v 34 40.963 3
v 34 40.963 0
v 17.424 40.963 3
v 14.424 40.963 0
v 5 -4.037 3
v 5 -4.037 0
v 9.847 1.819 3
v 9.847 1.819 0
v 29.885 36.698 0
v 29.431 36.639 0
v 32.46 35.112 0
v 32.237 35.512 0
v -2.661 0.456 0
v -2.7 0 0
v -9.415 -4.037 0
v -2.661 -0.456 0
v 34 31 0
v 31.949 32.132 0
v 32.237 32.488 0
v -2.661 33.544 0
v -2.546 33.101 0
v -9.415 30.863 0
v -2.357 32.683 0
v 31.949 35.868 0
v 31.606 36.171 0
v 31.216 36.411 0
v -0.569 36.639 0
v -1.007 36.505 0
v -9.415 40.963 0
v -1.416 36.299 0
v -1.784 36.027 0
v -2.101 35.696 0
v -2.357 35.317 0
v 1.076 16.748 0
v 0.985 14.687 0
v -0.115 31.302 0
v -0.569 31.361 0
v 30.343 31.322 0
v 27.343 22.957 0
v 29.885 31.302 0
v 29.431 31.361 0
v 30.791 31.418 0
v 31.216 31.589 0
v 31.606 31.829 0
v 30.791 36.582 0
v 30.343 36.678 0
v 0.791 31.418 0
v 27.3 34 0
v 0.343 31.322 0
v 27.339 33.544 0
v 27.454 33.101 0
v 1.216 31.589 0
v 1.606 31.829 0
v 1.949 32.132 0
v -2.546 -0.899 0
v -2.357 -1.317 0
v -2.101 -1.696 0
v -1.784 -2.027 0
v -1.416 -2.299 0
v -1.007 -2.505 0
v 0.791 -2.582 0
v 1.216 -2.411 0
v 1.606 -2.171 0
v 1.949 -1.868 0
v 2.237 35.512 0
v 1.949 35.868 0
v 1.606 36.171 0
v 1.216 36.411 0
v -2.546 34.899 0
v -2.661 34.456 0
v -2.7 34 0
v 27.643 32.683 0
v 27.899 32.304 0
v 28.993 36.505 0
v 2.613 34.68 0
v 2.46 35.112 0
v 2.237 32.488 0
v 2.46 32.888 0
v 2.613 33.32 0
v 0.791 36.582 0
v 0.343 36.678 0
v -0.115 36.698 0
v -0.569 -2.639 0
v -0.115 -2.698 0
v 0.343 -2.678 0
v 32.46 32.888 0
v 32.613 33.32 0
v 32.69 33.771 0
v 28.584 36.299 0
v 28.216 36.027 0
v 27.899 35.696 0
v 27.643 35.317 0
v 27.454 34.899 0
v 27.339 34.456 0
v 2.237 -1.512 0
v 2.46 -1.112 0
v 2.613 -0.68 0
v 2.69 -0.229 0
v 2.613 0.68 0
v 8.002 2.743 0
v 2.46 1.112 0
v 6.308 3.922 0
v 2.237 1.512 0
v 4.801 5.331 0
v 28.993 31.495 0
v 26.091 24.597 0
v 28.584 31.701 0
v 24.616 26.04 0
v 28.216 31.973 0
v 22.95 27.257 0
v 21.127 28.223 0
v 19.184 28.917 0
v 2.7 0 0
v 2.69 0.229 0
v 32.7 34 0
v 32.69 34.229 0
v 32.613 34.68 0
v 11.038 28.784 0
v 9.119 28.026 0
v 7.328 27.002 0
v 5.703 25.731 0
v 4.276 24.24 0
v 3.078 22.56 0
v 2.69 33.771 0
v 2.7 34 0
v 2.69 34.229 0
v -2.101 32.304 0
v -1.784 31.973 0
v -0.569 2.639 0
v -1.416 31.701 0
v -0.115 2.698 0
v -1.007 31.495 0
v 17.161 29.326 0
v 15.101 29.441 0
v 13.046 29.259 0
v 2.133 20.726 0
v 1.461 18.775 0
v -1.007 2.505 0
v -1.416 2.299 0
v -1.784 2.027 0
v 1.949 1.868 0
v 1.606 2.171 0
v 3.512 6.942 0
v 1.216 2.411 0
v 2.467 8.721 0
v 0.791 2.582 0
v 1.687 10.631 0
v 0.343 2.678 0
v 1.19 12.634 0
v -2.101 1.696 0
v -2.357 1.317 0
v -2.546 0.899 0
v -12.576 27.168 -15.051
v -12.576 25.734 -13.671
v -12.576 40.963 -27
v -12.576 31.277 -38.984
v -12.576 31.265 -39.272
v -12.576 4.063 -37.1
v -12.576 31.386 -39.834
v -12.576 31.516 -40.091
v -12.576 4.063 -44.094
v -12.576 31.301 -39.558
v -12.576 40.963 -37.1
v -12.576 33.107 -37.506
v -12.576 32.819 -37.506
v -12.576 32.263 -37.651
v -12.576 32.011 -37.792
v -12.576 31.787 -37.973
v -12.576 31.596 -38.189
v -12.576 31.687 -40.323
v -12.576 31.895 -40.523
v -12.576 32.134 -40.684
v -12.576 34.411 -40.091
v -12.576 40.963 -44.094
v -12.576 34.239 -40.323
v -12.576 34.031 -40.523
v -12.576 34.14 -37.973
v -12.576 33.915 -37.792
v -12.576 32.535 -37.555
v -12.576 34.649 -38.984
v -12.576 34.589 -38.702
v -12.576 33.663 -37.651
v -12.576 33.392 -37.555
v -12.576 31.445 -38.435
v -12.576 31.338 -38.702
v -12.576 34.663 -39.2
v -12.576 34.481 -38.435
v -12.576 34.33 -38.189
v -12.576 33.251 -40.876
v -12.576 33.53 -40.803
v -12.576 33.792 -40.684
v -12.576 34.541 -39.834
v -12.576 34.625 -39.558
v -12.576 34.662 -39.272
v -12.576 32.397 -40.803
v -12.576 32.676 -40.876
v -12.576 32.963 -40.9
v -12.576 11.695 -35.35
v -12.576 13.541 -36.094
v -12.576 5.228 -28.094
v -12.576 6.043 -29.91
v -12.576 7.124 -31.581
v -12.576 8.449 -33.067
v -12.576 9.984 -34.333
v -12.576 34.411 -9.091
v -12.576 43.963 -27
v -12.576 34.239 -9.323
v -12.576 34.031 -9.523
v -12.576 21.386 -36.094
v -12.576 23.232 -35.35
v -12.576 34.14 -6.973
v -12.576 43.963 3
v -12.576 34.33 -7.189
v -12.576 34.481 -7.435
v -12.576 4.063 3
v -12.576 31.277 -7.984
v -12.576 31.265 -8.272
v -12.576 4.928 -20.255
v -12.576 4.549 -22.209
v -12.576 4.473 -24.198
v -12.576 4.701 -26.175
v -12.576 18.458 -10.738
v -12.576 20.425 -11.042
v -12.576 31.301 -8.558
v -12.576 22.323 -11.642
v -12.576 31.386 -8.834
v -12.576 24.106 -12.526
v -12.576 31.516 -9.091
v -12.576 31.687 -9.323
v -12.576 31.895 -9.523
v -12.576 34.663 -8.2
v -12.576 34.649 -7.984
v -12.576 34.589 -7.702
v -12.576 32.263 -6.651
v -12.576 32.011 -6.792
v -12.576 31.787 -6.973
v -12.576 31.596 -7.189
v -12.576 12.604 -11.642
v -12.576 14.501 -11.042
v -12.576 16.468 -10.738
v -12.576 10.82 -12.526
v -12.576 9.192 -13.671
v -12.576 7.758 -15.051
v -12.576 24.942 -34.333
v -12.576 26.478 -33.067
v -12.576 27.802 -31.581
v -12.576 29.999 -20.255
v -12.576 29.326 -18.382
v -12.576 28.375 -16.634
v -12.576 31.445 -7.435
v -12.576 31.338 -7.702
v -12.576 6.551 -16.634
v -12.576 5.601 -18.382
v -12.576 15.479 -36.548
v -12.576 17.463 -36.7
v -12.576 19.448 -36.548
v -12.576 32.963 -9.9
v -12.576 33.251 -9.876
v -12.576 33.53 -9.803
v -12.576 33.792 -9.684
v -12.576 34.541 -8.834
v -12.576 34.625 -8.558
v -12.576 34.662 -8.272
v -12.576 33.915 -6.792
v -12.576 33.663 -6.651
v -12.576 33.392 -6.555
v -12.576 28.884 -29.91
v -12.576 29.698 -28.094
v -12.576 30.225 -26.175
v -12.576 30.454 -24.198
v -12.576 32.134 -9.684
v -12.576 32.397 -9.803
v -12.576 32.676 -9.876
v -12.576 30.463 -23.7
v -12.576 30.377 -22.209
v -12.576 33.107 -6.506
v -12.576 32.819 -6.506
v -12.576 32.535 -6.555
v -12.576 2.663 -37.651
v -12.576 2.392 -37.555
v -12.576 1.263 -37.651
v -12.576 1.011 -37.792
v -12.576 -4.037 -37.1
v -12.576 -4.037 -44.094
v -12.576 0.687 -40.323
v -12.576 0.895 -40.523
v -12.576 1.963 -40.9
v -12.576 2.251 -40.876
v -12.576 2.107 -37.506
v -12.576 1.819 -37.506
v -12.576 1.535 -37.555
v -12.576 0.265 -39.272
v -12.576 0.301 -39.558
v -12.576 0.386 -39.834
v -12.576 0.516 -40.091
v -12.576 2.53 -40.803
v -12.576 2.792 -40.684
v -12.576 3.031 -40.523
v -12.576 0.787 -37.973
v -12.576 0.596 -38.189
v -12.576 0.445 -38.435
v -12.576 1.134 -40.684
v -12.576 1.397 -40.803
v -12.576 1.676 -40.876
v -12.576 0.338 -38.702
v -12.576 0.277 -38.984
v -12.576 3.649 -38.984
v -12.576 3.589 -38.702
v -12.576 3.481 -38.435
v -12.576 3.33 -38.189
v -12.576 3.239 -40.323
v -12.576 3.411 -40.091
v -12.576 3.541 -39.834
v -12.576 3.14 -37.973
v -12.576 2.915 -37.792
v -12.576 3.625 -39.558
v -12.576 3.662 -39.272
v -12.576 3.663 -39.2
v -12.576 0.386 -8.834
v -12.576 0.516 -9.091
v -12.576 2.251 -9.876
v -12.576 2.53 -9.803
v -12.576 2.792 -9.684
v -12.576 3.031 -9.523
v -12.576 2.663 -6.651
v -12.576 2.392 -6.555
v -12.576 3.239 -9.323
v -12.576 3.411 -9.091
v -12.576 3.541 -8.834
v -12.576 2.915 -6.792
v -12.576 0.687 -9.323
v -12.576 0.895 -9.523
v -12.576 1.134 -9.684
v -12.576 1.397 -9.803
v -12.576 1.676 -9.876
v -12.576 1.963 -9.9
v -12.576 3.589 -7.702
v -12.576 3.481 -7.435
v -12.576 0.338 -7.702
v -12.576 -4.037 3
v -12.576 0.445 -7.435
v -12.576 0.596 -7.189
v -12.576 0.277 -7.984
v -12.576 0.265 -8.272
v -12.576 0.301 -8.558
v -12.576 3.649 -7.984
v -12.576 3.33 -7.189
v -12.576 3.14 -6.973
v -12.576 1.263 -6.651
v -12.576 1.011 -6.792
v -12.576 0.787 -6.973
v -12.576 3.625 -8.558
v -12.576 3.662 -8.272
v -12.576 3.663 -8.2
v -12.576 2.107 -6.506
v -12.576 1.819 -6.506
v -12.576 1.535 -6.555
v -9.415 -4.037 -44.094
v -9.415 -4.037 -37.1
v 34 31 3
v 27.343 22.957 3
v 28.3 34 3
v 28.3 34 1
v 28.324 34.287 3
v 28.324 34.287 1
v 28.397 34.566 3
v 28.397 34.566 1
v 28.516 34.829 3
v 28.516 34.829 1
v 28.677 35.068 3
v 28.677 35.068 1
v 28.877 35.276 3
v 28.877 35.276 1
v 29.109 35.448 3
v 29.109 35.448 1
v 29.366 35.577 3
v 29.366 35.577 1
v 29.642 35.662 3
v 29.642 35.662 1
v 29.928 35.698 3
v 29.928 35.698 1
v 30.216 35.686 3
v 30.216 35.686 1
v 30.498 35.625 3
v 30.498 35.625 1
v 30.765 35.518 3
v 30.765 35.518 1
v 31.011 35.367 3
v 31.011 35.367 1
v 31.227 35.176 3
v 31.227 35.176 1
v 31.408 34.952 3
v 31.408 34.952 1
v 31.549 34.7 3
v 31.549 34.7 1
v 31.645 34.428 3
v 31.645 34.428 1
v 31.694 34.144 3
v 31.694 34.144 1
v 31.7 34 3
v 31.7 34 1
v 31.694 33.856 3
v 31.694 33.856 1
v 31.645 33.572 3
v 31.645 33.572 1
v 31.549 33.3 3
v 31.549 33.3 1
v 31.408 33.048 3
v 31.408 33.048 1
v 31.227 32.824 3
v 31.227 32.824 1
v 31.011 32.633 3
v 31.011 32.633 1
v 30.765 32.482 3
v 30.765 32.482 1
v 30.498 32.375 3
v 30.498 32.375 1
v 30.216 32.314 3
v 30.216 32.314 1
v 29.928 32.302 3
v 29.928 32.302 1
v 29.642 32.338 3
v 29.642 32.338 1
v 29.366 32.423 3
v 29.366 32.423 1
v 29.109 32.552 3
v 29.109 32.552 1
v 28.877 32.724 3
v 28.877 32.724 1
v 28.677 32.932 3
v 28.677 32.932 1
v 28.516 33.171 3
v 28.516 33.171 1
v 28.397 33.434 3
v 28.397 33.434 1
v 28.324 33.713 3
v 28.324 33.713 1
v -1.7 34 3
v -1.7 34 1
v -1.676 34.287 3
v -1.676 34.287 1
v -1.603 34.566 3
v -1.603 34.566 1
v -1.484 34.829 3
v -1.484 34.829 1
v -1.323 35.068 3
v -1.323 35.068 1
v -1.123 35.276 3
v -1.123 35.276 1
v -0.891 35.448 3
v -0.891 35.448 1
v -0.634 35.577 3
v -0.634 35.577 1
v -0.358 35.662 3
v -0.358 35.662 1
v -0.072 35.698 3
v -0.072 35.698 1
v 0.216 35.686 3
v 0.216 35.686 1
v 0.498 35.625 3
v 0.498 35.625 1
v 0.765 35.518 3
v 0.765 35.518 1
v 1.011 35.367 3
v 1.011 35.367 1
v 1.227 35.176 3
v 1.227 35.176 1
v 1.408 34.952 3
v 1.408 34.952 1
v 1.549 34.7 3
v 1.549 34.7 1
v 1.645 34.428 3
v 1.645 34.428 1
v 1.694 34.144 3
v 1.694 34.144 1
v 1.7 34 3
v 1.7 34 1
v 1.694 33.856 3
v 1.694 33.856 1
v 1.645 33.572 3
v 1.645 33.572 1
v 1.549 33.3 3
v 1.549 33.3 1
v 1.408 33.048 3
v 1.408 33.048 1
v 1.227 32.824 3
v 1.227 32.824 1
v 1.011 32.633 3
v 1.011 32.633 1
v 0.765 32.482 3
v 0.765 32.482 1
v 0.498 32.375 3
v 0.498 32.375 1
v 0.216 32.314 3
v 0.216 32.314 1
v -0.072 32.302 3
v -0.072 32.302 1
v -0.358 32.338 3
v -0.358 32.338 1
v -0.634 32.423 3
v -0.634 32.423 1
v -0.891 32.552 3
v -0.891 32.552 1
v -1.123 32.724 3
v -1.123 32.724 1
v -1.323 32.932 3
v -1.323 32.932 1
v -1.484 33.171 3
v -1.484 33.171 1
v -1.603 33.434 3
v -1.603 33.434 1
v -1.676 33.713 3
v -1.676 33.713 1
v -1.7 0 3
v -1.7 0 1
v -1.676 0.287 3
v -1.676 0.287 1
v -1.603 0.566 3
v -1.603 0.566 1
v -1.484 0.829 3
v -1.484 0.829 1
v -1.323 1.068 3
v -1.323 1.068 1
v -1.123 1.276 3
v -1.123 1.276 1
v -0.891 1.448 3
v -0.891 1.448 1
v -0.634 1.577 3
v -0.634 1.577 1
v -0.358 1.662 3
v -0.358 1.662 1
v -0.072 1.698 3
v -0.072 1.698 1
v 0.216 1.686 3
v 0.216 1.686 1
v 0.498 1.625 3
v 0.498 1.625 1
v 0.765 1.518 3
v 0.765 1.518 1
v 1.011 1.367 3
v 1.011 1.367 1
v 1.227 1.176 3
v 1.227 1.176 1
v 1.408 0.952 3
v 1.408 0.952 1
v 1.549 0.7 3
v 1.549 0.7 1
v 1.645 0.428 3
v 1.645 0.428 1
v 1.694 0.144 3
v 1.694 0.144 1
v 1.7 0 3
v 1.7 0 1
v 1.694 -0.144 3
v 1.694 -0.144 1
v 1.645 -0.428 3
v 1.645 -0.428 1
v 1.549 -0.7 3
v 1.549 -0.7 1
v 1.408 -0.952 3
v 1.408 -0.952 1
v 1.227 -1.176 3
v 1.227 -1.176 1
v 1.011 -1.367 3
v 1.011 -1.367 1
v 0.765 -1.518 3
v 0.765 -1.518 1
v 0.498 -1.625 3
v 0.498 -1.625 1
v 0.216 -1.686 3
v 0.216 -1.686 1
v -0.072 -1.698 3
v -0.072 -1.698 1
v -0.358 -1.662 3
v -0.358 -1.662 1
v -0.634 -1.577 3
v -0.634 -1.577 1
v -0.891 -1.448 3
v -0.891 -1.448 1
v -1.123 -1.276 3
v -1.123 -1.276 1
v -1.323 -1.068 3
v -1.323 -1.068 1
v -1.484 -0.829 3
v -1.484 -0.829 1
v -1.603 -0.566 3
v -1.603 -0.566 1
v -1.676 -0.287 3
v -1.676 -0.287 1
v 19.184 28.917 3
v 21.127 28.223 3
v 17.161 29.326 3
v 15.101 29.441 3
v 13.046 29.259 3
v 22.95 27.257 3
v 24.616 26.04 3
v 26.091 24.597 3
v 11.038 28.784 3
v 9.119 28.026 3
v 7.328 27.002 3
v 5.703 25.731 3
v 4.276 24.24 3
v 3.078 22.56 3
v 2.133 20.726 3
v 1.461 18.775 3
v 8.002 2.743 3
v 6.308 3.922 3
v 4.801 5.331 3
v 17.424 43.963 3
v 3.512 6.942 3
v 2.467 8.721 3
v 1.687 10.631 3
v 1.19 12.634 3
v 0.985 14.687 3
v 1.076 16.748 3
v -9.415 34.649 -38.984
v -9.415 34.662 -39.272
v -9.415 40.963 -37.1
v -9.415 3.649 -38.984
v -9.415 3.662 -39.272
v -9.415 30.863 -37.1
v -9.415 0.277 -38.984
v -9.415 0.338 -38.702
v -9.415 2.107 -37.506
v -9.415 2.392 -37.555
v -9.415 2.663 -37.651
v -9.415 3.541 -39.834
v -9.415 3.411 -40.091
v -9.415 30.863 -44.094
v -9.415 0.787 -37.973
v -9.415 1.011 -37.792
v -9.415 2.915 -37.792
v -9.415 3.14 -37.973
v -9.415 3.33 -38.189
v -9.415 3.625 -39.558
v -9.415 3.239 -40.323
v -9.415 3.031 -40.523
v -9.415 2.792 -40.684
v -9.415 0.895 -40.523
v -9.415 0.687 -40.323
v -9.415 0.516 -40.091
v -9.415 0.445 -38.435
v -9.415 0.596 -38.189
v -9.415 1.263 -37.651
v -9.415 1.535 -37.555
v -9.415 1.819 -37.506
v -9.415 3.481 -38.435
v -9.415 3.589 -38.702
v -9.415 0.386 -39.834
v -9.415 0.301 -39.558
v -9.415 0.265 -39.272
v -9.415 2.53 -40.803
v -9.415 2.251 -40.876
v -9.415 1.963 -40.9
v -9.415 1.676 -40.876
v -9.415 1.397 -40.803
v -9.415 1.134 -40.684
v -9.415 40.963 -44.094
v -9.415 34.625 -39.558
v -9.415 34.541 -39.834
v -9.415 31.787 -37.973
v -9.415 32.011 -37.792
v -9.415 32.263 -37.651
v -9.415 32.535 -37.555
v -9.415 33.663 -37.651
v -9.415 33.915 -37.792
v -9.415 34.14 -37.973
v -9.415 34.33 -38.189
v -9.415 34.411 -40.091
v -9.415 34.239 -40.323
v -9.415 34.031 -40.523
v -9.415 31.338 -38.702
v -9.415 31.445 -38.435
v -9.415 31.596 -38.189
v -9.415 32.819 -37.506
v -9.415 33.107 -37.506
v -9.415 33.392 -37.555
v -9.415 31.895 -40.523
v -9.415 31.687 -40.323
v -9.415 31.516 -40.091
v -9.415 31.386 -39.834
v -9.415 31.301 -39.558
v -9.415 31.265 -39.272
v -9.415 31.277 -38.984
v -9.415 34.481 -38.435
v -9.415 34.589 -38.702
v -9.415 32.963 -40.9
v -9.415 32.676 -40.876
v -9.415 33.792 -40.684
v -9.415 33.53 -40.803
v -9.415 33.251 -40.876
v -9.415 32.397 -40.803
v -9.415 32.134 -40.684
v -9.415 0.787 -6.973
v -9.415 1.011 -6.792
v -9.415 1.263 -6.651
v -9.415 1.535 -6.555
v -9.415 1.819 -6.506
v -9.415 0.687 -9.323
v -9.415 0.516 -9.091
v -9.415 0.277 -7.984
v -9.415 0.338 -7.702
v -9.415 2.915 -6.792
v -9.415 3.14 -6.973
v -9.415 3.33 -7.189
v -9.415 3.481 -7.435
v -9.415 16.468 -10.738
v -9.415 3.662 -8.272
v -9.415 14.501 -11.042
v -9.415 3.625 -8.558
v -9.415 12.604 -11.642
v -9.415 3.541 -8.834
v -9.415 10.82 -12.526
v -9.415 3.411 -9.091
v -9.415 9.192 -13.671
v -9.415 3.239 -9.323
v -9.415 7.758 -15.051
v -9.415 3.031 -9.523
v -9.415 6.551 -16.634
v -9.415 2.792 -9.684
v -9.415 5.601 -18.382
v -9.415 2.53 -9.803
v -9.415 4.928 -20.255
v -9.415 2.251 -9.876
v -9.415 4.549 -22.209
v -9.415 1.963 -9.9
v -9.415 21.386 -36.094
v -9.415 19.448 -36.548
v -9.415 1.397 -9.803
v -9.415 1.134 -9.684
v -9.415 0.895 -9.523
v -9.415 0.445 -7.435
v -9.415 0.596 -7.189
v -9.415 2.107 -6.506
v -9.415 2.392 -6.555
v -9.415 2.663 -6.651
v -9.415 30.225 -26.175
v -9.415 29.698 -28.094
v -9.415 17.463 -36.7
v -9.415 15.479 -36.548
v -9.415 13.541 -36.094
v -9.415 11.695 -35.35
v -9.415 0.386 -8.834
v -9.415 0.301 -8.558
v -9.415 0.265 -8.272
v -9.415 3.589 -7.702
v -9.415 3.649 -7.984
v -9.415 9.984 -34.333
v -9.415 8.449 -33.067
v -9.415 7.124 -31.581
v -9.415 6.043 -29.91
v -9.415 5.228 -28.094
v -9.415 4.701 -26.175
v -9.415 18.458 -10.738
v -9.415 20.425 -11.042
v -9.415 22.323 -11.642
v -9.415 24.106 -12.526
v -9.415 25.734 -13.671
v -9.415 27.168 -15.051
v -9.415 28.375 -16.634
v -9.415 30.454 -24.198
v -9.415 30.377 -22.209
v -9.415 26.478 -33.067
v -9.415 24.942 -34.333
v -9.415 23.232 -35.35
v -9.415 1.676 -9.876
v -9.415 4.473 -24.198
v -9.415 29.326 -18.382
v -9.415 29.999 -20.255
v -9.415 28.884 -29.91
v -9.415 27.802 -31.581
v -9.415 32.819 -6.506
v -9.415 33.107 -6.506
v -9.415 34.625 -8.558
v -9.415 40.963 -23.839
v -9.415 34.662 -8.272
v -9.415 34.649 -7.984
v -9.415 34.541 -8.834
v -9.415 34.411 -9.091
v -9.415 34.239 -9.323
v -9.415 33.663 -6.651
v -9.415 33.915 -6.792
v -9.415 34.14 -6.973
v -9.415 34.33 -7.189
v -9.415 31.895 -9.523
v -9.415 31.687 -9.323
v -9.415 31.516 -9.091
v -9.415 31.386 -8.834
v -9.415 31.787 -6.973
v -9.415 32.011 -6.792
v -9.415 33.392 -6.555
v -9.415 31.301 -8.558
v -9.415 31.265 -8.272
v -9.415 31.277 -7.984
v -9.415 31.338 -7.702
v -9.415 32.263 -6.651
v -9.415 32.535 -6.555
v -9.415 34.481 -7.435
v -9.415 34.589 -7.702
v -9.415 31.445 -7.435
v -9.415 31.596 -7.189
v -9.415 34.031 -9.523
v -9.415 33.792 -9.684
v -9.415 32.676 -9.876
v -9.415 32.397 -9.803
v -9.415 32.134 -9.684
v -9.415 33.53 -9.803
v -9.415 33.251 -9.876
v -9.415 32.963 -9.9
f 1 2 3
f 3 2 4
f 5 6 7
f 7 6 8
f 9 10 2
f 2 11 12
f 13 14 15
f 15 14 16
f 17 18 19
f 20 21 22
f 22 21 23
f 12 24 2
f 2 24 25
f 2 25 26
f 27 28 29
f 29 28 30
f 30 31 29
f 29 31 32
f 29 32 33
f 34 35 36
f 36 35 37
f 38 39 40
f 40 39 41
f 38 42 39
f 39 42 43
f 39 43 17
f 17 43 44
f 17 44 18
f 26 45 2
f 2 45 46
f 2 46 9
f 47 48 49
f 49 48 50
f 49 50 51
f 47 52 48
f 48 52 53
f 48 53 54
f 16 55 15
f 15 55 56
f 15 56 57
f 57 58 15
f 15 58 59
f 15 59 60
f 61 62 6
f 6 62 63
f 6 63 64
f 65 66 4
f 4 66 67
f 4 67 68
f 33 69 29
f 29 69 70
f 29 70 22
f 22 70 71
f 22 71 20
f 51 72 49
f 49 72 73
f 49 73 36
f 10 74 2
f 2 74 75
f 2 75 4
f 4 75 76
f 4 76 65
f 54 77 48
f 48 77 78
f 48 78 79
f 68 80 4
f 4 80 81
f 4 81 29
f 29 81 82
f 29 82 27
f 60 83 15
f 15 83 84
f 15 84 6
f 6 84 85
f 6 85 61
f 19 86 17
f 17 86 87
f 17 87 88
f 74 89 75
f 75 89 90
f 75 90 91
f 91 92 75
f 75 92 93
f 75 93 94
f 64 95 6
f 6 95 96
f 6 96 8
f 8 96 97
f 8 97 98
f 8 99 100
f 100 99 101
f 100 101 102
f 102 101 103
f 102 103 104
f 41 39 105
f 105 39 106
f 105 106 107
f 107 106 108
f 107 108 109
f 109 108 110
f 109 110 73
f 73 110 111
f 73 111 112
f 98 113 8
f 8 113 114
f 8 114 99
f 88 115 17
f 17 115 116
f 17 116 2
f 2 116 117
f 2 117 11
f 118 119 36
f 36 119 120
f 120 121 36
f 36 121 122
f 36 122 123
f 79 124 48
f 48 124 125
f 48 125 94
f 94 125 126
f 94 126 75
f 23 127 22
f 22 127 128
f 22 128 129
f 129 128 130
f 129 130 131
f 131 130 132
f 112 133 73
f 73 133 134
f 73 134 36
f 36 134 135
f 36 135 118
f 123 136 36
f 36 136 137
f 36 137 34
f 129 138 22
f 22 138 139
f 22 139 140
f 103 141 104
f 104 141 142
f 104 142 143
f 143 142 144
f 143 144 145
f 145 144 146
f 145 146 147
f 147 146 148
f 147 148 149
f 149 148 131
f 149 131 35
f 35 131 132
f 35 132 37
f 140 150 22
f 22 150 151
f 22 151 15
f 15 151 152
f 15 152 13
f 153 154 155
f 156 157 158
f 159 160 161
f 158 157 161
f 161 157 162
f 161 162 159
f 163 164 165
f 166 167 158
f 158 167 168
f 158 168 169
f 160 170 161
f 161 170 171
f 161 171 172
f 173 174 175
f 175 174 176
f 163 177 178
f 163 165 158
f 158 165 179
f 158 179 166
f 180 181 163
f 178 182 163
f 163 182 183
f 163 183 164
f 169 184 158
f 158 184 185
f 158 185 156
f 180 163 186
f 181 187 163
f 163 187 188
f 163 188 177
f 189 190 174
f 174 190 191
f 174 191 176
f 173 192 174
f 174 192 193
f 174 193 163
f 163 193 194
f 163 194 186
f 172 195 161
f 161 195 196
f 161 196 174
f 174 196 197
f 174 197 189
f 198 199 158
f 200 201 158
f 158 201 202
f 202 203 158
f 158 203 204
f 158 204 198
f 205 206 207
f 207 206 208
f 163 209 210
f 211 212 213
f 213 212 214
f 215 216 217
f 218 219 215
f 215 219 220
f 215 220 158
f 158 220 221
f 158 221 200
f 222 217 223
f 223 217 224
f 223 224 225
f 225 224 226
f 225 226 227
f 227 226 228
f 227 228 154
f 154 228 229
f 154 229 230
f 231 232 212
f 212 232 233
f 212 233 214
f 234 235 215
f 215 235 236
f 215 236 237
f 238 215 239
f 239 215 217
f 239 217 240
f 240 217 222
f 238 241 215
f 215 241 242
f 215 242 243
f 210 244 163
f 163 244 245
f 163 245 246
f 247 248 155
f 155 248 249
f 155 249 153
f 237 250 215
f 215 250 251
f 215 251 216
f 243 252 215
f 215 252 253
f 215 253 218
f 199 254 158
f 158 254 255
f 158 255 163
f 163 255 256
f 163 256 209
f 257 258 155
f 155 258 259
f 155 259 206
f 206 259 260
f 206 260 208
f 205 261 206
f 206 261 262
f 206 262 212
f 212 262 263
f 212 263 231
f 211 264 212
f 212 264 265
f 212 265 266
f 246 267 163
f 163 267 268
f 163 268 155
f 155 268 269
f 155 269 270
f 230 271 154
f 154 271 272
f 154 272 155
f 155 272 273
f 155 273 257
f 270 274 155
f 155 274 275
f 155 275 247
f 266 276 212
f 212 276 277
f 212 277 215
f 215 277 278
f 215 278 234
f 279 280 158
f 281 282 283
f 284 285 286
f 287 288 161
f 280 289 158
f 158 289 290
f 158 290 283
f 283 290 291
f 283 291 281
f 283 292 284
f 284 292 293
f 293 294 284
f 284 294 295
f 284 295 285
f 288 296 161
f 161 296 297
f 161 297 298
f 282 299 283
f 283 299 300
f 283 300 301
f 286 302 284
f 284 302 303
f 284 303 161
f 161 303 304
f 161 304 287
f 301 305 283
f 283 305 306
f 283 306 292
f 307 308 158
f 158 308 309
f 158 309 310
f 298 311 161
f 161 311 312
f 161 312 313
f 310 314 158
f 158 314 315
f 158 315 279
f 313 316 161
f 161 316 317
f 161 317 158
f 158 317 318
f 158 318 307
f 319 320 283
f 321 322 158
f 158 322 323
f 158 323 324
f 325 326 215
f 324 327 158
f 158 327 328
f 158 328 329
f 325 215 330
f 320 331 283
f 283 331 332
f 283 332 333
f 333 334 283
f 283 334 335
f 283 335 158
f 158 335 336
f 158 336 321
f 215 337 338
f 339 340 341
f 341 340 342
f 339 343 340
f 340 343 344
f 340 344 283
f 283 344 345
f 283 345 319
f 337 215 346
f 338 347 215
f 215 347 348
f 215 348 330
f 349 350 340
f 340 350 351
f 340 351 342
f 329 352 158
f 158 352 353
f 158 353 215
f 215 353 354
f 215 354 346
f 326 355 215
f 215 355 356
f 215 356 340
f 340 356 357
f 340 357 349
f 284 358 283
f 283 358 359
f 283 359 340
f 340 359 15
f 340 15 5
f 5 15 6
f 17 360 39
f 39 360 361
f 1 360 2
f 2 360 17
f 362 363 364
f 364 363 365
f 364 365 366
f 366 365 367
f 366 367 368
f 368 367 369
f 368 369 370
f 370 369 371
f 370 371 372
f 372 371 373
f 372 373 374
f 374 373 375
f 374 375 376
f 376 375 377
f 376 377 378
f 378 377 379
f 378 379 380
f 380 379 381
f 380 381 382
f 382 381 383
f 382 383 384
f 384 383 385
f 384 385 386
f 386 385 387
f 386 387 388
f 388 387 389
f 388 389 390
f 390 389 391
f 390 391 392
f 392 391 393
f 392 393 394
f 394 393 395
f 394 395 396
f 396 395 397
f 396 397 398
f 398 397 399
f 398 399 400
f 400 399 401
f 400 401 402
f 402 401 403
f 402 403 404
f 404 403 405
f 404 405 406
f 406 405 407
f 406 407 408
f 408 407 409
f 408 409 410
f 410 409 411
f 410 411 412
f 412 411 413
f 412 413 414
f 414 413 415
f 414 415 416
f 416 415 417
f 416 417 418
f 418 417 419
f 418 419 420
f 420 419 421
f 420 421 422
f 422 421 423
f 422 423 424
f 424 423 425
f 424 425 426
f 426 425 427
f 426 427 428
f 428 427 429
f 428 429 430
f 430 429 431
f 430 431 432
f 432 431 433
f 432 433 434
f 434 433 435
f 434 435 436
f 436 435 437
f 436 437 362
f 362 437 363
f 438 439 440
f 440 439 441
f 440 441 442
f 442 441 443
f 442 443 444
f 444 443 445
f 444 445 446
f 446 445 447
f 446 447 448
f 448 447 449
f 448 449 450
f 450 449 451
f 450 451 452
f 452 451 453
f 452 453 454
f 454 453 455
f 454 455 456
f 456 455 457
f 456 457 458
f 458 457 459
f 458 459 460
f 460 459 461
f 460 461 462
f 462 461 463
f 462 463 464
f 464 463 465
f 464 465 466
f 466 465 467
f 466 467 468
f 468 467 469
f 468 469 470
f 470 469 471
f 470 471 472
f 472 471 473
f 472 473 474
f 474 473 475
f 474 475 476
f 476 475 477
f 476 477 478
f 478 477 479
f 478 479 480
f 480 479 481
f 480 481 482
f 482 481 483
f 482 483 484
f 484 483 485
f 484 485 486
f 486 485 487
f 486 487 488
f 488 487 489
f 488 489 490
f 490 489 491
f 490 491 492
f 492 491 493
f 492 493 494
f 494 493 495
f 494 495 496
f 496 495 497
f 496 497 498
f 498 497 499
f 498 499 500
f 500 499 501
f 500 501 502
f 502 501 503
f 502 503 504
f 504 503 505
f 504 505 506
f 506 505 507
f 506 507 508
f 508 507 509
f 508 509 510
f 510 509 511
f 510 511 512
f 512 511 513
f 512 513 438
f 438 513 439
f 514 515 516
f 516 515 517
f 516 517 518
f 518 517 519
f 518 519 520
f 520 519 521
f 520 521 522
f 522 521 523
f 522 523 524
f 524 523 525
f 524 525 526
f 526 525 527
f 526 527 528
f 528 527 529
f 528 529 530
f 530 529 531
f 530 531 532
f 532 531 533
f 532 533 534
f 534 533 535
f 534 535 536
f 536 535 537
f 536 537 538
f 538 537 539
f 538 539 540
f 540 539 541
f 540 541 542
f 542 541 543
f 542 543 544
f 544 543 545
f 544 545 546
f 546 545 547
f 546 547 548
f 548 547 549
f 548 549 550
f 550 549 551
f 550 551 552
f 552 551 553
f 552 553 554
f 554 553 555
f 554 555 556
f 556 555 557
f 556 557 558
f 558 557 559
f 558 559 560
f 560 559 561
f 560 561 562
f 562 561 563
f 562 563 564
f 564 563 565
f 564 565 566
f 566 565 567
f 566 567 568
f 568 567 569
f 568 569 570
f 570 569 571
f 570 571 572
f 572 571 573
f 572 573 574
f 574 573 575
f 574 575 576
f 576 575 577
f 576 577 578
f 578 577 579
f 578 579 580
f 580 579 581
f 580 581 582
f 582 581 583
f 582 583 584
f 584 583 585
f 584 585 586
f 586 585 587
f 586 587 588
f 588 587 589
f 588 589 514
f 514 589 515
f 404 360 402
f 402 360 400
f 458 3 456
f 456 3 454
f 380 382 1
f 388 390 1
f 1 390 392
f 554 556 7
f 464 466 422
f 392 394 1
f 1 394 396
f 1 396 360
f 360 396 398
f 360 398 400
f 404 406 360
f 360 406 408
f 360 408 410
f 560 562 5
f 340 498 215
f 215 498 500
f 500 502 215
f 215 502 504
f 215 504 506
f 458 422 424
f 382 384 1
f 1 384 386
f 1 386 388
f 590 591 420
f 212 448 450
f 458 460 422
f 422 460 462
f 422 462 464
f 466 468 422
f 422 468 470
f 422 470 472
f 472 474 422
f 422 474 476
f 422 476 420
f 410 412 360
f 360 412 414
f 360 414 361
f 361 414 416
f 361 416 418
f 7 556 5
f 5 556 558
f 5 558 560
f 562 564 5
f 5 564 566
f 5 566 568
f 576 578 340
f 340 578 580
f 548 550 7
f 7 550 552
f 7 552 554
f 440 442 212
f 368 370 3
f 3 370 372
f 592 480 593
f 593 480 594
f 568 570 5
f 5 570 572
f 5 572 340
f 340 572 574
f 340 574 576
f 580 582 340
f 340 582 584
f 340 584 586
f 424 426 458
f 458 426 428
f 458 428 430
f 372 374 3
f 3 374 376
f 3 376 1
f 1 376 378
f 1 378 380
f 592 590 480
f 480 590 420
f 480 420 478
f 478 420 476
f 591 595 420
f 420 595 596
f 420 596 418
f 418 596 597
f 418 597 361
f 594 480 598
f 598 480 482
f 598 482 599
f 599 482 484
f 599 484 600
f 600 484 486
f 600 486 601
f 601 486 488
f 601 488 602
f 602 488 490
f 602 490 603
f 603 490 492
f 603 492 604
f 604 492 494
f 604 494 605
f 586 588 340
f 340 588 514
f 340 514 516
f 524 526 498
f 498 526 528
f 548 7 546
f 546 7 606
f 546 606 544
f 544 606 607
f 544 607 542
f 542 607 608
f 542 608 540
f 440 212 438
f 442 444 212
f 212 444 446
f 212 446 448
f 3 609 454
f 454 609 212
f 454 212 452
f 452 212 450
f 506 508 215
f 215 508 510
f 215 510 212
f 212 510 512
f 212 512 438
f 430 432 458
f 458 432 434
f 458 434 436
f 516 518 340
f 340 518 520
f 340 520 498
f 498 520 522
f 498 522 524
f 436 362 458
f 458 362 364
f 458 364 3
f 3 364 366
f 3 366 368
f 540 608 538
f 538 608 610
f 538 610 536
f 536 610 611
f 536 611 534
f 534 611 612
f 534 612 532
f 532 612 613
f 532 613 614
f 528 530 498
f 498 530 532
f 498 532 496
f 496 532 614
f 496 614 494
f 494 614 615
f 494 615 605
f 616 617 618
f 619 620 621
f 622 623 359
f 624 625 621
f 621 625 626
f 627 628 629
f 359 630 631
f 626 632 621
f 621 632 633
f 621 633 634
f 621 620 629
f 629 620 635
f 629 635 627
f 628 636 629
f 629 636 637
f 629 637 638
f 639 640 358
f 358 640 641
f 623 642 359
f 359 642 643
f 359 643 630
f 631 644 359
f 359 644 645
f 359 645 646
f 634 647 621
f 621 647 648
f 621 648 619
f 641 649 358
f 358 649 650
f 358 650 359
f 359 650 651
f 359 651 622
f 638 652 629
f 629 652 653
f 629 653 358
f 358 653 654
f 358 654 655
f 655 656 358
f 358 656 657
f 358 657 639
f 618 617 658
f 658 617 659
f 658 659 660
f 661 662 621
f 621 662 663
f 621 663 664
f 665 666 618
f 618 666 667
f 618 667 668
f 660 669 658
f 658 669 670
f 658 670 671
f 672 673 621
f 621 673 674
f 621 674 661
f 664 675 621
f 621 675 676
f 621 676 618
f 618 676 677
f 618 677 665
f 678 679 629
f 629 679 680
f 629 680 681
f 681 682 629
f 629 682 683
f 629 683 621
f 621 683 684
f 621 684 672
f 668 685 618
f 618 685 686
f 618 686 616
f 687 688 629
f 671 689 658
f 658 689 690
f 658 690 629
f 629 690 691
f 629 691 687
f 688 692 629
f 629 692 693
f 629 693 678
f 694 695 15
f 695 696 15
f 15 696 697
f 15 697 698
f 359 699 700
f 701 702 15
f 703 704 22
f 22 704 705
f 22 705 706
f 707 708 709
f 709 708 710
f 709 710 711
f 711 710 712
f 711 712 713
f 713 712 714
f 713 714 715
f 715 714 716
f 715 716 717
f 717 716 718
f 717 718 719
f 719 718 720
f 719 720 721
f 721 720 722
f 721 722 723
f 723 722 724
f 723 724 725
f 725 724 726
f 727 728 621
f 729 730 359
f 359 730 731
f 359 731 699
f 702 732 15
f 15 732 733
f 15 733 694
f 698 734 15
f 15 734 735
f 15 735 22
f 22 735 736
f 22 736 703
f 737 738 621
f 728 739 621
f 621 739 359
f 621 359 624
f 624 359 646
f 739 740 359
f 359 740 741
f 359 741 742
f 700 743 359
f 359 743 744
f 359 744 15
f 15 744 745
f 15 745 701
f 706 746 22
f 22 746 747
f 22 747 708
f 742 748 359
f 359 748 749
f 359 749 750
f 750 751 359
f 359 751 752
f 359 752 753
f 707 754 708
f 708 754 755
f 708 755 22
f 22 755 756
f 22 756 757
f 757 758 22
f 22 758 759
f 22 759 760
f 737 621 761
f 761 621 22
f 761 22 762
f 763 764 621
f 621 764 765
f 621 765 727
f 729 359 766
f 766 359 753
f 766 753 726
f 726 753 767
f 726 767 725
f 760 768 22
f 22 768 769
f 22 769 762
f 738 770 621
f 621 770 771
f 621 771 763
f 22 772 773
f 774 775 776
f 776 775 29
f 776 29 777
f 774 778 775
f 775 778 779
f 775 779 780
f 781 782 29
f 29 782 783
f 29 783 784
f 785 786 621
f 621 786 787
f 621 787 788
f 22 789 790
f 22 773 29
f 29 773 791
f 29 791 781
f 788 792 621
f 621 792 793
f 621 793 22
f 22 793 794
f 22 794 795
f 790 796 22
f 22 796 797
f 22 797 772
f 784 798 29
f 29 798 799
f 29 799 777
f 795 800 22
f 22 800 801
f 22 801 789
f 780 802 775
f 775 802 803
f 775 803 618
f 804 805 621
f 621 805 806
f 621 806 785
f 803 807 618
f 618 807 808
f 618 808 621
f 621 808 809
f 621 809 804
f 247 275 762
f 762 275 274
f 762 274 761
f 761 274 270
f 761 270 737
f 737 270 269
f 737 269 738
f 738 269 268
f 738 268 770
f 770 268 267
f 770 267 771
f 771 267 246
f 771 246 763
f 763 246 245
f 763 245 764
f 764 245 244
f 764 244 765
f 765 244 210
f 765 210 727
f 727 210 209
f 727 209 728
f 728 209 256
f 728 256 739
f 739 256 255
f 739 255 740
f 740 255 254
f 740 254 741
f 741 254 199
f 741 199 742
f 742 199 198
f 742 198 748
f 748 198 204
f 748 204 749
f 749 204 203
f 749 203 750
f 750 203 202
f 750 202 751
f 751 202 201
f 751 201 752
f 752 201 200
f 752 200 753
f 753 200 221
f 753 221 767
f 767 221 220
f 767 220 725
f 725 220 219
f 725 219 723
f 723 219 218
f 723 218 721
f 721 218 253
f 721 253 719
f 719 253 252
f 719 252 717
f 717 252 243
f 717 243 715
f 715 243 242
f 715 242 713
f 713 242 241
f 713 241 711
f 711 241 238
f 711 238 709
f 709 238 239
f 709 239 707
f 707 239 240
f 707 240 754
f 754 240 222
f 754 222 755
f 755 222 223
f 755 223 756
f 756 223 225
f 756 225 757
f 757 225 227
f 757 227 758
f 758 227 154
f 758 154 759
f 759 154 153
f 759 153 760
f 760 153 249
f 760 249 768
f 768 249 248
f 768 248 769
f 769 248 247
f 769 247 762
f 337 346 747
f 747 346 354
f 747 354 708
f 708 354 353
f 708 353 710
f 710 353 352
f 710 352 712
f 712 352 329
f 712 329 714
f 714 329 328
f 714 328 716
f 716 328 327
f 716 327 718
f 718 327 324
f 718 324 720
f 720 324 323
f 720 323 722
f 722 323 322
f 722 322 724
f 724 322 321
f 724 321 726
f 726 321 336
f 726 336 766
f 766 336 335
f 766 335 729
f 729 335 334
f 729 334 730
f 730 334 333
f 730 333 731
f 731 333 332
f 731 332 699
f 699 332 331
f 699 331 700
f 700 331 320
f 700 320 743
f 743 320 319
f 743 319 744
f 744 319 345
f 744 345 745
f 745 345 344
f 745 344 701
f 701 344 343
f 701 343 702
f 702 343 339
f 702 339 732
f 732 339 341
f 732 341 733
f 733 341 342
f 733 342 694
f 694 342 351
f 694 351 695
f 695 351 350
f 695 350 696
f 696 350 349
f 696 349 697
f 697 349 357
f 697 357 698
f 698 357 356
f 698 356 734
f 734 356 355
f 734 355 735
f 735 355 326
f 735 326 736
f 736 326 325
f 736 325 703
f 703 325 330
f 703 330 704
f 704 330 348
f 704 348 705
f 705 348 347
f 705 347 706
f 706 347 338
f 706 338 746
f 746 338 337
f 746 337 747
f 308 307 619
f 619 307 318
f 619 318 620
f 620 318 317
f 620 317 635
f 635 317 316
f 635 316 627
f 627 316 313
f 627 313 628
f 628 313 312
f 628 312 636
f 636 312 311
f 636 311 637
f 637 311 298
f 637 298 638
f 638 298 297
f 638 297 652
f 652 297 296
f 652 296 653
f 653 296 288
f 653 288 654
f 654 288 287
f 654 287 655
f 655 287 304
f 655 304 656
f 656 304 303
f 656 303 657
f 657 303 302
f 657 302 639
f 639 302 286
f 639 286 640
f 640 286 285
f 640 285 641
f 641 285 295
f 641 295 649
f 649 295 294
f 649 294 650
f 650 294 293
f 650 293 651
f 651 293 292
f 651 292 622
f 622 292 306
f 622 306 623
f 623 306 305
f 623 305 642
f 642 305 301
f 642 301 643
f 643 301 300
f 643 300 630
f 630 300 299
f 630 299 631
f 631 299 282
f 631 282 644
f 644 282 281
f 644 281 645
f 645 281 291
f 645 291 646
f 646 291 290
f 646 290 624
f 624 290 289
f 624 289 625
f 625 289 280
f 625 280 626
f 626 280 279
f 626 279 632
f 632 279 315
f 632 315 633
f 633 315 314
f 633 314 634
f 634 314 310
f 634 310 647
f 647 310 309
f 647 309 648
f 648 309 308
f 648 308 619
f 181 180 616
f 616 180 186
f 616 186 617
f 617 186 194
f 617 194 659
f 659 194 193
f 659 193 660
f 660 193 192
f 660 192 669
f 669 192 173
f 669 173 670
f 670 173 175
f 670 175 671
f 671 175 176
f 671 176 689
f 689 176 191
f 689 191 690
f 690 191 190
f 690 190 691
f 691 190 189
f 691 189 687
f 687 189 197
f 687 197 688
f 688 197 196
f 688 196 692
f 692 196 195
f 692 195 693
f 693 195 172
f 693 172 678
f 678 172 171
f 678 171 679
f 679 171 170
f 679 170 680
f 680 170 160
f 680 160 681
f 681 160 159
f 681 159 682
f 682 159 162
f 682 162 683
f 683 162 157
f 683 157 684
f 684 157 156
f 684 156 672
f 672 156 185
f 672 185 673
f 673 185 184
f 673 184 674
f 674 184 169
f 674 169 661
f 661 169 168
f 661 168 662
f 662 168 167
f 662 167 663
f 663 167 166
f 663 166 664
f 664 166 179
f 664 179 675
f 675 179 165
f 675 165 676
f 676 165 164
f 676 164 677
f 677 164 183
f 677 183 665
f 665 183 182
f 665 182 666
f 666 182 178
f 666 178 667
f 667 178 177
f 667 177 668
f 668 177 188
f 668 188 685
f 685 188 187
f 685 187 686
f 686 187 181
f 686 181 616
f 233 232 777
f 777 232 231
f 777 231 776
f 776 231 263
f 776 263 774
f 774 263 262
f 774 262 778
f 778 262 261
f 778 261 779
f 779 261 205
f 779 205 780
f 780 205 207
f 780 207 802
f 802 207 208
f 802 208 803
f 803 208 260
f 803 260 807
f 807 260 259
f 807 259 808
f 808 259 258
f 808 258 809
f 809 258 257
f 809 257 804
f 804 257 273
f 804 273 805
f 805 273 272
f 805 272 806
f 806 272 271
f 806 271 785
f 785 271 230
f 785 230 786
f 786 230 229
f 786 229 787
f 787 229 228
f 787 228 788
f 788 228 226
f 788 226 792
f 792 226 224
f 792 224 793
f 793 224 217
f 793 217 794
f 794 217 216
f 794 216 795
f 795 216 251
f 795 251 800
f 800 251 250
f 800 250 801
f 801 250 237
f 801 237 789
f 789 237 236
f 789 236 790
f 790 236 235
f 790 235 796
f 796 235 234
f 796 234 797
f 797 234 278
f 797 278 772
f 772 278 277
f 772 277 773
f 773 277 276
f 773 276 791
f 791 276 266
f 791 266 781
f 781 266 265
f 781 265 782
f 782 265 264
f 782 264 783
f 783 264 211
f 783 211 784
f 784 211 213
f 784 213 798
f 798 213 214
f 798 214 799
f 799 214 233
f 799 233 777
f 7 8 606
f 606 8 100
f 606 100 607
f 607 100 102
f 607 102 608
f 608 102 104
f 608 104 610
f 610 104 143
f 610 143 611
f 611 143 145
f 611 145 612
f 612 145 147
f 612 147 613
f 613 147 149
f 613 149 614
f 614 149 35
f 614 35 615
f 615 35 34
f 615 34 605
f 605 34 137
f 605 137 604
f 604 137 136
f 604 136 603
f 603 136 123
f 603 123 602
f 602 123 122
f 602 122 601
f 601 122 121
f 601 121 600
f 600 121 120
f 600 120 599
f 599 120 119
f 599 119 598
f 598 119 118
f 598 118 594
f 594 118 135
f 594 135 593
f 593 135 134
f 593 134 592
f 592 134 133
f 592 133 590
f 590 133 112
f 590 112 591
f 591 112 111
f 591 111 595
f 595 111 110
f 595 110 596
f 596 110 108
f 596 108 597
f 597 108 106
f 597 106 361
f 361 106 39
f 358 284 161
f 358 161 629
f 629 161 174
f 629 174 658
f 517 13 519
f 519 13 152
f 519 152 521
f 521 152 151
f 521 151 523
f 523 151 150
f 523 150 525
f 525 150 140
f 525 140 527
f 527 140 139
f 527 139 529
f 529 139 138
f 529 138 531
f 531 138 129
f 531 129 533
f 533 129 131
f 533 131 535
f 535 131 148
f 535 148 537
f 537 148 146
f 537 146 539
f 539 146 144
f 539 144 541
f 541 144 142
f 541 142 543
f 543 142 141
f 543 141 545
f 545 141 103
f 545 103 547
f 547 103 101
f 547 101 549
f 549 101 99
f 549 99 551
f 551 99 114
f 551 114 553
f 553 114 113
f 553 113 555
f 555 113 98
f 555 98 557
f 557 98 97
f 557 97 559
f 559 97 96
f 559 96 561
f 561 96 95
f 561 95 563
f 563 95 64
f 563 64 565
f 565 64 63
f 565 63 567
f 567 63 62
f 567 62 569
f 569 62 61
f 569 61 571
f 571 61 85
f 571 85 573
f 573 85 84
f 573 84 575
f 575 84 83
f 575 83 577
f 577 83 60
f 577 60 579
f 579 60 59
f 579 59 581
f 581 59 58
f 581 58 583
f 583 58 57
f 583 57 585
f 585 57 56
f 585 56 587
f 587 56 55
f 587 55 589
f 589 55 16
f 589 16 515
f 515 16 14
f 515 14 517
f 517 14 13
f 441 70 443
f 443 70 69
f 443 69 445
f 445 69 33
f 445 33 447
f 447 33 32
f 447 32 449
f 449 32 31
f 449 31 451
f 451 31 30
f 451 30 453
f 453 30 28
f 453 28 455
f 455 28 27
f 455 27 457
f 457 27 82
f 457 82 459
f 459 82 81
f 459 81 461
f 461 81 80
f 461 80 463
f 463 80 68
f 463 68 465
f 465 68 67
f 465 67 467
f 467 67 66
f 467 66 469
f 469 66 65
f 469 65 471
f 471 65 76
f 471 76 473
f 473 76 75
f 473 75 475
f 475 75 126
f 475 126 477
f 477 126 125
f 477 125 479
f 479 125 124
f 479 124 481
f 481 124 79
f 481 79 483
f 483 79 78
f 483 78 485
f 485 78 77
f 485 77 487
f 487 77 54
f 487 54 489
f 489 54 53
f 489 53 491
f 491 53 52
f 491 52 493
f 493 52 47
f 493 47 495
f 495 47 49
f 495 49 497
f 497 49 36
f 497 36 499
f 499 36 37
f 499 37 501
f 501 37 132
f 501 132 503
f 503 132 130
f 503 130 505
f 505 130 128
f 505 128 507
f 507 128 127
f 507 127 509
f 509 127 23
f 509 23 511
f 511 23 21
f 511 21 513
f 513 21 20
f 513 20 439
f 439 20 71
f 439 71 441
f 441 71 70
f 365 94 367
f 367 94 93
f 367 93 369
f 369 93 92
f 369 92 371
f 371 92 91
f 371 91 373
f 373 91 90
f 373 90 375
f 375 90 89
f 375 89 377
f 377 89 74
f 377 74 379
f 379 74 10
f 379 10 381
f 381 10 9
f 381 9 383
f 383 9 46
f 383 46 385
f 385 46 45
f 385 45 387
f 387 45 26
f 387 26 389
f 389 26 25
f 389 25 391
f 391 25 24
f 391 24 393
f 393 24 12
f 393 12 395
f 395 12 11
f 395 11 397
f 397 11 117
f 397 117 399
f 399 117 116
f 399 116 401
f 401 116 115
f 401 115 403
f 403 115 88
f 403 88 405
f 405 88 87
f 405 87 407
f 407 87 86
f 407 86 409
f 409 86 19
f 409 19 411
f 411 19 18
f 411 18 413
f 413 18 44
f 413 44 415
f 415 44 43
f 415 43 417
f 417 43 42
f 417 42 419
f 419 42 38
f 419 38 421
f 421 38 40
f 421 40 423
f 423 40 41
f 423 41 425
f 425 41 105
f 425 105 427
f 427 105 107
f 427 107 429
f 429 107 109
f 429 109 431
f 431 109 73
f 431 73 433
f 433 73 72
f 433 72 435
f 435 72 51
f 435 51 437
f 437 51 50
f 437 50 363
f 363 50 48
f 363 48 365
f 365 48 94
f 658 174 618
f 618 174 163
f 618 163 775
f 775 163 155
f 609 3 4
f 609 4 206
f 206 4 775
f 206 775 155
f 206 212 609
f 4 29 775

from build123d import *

# Parameters (mm, degrees)
SKETCH_1_R          = 1.7
EXTRUDE_1_DEPTH     = 3
SKETCH_2_W          = 3.161086378
SKETCH_2_H          = 42
EXTRUDE_2_DEPTH     = 45
SKETCH_3_R          = 1.7
SKETCH_3_R_2        = 13
CUT_EXTRUDE_1_DEPTH = 45
SKETCH_4_R          = 14.357158039
CUT_EXTRUDE_2_DEPTH = 5
SKETCH_5_W          = 3.756135355
SKETCH_5_H          = 42.889588607
CUT_EXTRUDE_3_DEPTH = 5
CHAMFER_1_SIZE      = 1
EXTRUDE_3_DEPTH     = 3
EXTRUDE_4_DEPTH     = 3


with BuildPart() as part:
    # Эскиз1 → Бобышка-Вытянуть1 (new body)
    with BuildSketch(Plane.XY):
        Polygon((34, 31), (34, 34), (34, 37.963249048), (-1.7, 37.963249048), (-6, 37.963249048), (-12.575968026, 37.963249048), (-12.575968026, -4.036750952), (-6, -4.036750952), (5, -4.036750952), align=None)
        Circle(SKETCH_1_R, mode=Mode.SUBTRACT)
        with Locations((0, 34)):
            Circle(SKETCH_1_R, mode=Mode.SUBTRACT)
        with Locations((30, 34)):
            Circle(SKETCH_1_R, mode=Mode.SUBTRACT)
    extrude(amount=EXTRUDE_1_DEPTH)

    # Эскиз2 → Бобышка-Вытянуть2 (add)
    with BuildSketch(Plane(origin=(0, 0, 0), x_dir=(-1, 0, 0), z_dir=(0, 0, -1))):
        with Locations((10.995424837, 16.963249048)):
            Rectangle(SKETCH_2_W, SKETCH_2_H)
    extrude(amount=EXTRUDE_2_DEPTH)

    # Эскиз3 → Вырез-Вытянуть1 (cut)
    with BuildSketch(Plane(origin=(-9.414881648, 0, 0), x_dir=(0, 0, -1), z_dir=(1, 0, 0))):
        with Locations((8.2, 32.963249048)):
            Circle(SKETCH_3_R)
        with Locations((8.2, 1.963249048)):
            Circle(SKETCH_3_R)
        with Locations((39.2, 1.963249048)):
            Circle(SKETCH_3_R)
        with Locations((39.2, 32.963249048)):
            Circle(SKETCH_3_R)
        with Locations((23.7, 17.463249048)):
            Circle(SKETCH_3_R_2)
    extrude(amount=-CUT_EXTRUDE_1_DEPTH, mode=Mode.SUBTRACT)

    # Эскиз4 → Вырез-Вытянуть2 (cut)
    with BuildSketch(Plane(origin=(0, 0, 0), x_dir=(-1, 0, 0), z_dir=(0, 0, -1))):
        with Locations((-15.336156096, 15.085397016)):
            Circle(SKETCH_4_R)
    extrude(amount=-CUT_EXTRUDE_2_DEPTH, mode=Mode.SUBTRACT)

    # Эскиз5 → Вырез-Вытянуть3 (cut)
    with BuildSketch(Plane(origin=(-9.414881648, 0, 0), x_dir=(0, 0, -1), z_dir=(1, 0, 0))):
        with Locations((45.97241361, 16.518454745)):
            Rectangle(SKETCH_5_W, SKETCH_5_H)
    extrude(amount=-CUT_EXTRUDE_3_DEPTH, mode=Mode.SUBTRACT)

    # Фаска1
    chamfer_1_edges = [part.edges().sort_by_distance(p)[0] for p in [
        (28.3, 34, 0),
        (-1.7, 34, 0),
        (-1.7, 0, 0),
    ]]
    chamfer(chamfer_1_edges, length=CHAMFER_1_SIZE)

    # Эскиз6 → Бобышка-Вытянуть3 (add)
    with BuildSketch(Plane(origin=(0, 37.963249048, 0), x_dir=(1, 0, 0), z_dir=(0, 1, 0))):
        Polygon((34, -3), (34, 0), (-9.414881648, 0), (-9.414881648, 44.094345932), (-12.575968026, 44.094345932), (-12.575968026, -3), align=None)
    extrude(amount=EXTRUDE_3_DEPTH)

    # Эскиз7 → Бобышка-Вытянуть4 (add)
    with BuildSketch(Plane(origin=(0, 40.963249048, 0), x_dir=(1, 0, 0), z_dir=(0, 1, 0))):
        Polygon((17.424031974, -3), (-12.575968026, -3), (-12.575968026, 27), align=None)
    extrude(amount=EXTRUDE_4_DEPTH)


solid = part.part
